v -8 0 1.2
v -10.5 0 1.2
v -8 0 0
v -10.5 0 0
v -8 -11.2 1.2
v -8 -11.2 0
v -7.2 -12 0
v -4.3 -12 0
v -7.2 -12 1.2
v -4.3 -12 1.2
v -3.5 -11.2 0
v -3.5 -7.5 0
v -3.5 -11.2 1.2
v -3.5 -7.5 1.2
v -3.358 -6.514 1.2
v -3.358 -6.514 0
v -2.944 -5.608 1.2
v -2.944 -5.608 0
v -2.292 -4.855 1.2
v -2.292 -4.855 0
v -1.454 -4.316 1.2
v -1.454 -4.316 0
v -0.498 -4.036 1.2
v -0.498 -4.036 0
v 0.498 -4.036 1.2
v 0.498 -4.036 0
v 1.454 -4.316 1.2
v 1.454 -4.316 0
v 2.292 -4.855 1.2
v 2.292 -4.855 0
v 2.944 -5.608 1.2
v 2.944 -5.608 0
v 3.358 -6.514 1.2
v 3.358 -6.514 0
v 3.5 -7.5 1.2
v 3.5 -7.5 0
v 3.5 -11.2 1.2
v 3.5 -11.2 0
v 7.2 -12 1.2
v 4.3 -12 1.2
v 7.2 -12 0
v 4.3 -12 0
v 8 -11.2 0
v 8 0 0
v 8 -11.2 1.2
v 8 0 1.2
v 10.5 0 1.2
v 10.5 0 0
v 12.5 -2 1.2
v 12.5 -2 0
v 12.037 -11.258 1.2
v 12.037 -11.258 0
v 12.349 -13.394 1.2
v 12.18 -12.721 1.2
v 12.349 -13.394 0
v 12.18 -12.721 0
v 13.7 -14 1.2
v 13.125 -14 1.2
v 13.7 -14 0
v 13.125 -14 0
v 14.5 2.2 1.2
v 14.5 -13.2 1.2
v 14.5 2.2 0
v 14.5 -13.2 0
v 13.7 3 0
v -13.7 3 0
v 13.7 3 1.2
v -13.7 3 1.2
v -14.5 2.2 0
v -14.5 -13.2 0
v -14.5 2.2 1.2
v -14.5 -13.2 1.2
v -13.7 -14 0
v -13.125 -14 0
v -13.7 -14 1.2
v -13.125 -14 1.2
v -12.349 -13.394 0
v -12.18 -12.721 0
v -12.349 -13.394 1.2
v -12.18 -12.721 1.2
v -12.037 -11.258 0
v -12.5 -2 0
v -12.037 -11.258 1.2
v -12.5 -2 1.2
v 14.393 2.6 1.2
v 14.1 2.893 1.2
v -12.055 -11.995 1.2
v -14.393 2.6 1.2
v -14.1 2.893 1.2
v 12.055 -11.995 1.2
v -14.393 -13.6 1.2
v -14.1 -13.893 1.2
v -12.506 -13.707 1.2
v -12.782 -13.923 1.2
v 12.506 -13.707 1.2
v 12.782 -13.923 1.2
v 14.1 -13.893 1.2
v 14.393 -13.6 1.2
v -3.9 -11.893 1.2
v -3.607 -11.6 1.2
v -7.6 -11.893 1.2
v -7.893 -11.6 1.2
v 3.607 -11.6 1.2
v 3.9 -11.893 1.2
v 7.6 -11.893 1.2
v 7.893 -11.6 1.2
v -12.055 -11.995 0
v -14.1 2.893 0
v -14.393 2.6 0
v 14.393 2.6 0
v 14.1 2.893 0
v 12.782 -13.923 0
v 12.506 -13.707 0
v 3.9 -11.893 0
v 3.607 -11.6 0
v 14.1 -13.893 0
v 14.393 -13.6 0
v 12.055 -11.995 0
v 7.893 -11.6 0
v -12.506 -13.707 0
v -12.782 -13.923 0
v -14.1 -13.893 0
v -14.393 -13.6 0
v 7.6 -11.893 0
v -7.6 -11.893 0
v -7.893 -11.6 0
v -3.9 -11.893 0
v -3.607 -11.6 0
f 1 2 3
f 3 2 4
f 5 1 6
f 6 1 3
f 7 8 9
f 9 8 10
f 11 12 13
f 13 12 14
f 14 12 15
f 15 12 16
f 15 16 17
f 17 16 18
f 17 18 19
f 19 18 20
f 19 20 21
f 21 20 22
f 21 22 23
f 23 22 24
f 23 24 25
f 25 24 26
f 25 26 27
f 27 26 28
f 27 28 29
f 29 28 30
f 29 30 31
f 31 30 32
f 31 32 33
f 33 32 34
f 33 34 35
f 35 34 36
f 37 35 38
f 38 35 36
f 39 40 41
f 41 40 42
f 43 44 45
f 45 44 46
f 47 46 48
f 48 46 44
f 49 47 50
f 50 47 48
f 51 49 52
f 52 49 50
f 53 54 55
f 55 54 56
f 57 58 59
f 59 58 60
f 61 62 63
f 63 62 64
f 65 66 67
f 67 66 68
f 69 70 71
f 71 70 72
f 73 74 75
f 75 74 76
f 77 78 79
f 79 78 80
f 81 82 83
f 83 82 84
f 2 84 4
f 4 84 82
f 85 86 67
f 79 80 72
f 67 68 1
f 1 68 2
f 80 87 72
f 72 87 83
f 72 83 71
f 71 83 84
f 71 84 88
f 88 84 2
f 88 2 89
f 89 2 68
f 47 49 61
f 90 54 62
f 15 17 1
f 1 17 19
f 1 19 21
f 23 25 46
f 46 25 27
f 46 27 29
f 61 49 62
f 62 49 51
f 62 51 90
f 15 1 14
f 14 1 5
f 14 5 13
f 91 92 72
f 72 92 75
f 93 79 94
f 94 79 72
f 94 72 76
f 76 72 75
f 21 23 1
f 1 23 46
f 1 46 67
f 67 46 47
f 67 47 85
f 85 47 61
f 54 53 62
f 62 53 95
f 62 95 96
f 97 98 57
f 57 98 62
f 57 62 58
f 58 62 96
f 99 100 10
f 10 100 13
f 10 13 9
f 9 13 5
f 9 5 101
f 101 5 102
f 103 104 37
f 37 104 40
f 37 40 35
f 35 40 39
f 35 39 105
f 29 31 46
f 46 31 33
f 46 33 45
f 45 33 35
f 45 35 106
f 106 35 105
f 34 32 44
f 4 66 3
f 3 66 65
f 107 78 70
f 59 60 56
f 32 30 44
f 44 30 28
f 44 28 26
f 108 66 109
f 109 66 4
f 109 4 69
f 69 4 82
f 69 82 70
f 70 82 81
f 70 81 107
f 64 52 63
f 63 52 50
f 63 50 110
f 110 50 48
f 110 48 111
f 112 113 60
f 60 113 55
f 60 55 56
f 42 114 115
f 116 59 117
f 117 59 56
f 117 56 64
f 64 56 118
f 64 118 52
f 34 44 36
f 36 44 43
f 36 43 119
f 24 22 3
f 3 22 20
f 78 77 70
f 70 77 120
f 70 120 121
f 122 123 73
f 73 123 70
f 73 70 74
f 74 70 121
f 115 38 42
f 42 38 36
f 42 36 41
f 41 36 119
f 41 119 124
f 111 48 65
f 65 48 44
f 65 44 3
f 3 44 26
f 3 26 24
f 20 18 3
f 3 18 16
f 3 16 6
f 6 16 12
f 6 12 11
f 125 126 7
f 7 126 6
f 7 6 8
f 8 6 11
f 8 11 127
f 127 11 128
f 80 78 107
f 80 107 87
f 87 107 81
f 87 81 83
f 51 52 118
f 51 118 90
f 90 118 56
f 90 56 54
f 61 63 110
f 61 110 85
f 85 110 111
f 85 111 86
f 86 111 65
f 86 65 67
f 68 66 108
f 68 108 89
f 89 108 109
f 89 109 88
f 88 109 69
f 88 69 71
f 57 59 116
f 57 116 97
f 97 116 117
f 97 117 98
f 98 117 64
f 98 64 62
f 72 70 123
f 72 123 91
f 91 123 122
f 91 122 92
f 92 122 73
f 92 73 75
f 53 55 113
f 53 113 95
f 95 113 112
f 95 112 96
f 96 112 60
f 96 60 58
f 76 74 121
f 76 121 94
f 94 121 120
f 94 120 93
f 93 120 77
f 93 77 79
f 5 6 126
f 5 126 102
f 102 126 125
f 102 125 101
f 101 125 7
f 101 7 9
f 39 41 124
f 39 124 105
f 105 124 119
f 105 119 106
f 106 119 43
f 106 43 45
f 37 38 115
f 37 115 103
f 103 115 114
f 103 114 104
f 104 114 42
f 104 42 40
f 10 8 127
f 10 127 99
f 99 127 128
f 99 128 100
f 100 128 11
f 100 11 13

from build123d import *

# Parameters (mm, degrees)
BOSS_EXTRUDE1_DEPTH = 1.2
FILLET1_R           = 5
FILLET2_R           = 0.8


with BuildPart() as part:
    # Sketch1 → Boss-Extrude1 (new body)
    with BuildSketch(Plane.XY):
        with BuildLine():
            Line((-10.5, 0), (-12.5, -2))
            Line((-12.5, -2), (-12, -12))
            Line((-12, -12), (-12.5, -14))
            Line((-12.5, -14), (-14.5, -14))
            Line((-14.5, -14), (-14.5, 3))
            Line((-14.5, 3), (-12.5, 3))
            Line((-12.5, 3), (12.5, 3))
            Line((12.5, 3), (14.5, 3))
            Line((14.5, 3), (14.5, -14))
            Line((14.5, -14), (12.5, -14))
            Line((12.5, -14), (12, -12))
            Line((12, -12), (12.5, -2))
            Line((12.5, -2), (10.5, 0))
            Line((10.5, 0), (8, 0))
            Line((8, 0), (8, -12))
            Line((8, -12), (3.5, -12))
            Line((3.5, -12), (3.5, -7.5))
            ThreePointArc((3.5, -7.5), (0, -4), (-3.5, -7.5))
            Line((-3.5, -7.5), (-3.5, -12))
            Line((-3.5, -12), (-8, -12))
            Line((-8, -12), (-8, 0))
            Line((-8, 0), (-10.5, 0))
        make_face()
    extrude(amount=BOSS_EXTRUDE1_DEPTH)

    # Fillet1
    fillet1_edges = [part.edges().sort_by_distance(p)[0] for p in [
        (-12, -12, 0.6),
        (12, -12, 0.6),
    ]]
    fillet(fillet1_edges, radius=FILLET1_R)

    # Fillet2
    fillet2_edges = [part.edges().sort_by_distance(p)[0] for p in [
        (-12.5, -14, 0.6),
        (-14.5, -14, 0.6),
        (-14.5, 3, 0.6),
        (14.5, 3, 0.6),
        (14.5, -14, 0.6),
        (12.5, -14, 0.6),
        (8, -12, 0.6),
        (3.5, -12, 0.6),
        (-3.5, -12, 0.6),
        (-8, -12, 0.6),
    ]]
    fillet(fillet2_edges, radius=FILLET2_R)


solid = part.part
